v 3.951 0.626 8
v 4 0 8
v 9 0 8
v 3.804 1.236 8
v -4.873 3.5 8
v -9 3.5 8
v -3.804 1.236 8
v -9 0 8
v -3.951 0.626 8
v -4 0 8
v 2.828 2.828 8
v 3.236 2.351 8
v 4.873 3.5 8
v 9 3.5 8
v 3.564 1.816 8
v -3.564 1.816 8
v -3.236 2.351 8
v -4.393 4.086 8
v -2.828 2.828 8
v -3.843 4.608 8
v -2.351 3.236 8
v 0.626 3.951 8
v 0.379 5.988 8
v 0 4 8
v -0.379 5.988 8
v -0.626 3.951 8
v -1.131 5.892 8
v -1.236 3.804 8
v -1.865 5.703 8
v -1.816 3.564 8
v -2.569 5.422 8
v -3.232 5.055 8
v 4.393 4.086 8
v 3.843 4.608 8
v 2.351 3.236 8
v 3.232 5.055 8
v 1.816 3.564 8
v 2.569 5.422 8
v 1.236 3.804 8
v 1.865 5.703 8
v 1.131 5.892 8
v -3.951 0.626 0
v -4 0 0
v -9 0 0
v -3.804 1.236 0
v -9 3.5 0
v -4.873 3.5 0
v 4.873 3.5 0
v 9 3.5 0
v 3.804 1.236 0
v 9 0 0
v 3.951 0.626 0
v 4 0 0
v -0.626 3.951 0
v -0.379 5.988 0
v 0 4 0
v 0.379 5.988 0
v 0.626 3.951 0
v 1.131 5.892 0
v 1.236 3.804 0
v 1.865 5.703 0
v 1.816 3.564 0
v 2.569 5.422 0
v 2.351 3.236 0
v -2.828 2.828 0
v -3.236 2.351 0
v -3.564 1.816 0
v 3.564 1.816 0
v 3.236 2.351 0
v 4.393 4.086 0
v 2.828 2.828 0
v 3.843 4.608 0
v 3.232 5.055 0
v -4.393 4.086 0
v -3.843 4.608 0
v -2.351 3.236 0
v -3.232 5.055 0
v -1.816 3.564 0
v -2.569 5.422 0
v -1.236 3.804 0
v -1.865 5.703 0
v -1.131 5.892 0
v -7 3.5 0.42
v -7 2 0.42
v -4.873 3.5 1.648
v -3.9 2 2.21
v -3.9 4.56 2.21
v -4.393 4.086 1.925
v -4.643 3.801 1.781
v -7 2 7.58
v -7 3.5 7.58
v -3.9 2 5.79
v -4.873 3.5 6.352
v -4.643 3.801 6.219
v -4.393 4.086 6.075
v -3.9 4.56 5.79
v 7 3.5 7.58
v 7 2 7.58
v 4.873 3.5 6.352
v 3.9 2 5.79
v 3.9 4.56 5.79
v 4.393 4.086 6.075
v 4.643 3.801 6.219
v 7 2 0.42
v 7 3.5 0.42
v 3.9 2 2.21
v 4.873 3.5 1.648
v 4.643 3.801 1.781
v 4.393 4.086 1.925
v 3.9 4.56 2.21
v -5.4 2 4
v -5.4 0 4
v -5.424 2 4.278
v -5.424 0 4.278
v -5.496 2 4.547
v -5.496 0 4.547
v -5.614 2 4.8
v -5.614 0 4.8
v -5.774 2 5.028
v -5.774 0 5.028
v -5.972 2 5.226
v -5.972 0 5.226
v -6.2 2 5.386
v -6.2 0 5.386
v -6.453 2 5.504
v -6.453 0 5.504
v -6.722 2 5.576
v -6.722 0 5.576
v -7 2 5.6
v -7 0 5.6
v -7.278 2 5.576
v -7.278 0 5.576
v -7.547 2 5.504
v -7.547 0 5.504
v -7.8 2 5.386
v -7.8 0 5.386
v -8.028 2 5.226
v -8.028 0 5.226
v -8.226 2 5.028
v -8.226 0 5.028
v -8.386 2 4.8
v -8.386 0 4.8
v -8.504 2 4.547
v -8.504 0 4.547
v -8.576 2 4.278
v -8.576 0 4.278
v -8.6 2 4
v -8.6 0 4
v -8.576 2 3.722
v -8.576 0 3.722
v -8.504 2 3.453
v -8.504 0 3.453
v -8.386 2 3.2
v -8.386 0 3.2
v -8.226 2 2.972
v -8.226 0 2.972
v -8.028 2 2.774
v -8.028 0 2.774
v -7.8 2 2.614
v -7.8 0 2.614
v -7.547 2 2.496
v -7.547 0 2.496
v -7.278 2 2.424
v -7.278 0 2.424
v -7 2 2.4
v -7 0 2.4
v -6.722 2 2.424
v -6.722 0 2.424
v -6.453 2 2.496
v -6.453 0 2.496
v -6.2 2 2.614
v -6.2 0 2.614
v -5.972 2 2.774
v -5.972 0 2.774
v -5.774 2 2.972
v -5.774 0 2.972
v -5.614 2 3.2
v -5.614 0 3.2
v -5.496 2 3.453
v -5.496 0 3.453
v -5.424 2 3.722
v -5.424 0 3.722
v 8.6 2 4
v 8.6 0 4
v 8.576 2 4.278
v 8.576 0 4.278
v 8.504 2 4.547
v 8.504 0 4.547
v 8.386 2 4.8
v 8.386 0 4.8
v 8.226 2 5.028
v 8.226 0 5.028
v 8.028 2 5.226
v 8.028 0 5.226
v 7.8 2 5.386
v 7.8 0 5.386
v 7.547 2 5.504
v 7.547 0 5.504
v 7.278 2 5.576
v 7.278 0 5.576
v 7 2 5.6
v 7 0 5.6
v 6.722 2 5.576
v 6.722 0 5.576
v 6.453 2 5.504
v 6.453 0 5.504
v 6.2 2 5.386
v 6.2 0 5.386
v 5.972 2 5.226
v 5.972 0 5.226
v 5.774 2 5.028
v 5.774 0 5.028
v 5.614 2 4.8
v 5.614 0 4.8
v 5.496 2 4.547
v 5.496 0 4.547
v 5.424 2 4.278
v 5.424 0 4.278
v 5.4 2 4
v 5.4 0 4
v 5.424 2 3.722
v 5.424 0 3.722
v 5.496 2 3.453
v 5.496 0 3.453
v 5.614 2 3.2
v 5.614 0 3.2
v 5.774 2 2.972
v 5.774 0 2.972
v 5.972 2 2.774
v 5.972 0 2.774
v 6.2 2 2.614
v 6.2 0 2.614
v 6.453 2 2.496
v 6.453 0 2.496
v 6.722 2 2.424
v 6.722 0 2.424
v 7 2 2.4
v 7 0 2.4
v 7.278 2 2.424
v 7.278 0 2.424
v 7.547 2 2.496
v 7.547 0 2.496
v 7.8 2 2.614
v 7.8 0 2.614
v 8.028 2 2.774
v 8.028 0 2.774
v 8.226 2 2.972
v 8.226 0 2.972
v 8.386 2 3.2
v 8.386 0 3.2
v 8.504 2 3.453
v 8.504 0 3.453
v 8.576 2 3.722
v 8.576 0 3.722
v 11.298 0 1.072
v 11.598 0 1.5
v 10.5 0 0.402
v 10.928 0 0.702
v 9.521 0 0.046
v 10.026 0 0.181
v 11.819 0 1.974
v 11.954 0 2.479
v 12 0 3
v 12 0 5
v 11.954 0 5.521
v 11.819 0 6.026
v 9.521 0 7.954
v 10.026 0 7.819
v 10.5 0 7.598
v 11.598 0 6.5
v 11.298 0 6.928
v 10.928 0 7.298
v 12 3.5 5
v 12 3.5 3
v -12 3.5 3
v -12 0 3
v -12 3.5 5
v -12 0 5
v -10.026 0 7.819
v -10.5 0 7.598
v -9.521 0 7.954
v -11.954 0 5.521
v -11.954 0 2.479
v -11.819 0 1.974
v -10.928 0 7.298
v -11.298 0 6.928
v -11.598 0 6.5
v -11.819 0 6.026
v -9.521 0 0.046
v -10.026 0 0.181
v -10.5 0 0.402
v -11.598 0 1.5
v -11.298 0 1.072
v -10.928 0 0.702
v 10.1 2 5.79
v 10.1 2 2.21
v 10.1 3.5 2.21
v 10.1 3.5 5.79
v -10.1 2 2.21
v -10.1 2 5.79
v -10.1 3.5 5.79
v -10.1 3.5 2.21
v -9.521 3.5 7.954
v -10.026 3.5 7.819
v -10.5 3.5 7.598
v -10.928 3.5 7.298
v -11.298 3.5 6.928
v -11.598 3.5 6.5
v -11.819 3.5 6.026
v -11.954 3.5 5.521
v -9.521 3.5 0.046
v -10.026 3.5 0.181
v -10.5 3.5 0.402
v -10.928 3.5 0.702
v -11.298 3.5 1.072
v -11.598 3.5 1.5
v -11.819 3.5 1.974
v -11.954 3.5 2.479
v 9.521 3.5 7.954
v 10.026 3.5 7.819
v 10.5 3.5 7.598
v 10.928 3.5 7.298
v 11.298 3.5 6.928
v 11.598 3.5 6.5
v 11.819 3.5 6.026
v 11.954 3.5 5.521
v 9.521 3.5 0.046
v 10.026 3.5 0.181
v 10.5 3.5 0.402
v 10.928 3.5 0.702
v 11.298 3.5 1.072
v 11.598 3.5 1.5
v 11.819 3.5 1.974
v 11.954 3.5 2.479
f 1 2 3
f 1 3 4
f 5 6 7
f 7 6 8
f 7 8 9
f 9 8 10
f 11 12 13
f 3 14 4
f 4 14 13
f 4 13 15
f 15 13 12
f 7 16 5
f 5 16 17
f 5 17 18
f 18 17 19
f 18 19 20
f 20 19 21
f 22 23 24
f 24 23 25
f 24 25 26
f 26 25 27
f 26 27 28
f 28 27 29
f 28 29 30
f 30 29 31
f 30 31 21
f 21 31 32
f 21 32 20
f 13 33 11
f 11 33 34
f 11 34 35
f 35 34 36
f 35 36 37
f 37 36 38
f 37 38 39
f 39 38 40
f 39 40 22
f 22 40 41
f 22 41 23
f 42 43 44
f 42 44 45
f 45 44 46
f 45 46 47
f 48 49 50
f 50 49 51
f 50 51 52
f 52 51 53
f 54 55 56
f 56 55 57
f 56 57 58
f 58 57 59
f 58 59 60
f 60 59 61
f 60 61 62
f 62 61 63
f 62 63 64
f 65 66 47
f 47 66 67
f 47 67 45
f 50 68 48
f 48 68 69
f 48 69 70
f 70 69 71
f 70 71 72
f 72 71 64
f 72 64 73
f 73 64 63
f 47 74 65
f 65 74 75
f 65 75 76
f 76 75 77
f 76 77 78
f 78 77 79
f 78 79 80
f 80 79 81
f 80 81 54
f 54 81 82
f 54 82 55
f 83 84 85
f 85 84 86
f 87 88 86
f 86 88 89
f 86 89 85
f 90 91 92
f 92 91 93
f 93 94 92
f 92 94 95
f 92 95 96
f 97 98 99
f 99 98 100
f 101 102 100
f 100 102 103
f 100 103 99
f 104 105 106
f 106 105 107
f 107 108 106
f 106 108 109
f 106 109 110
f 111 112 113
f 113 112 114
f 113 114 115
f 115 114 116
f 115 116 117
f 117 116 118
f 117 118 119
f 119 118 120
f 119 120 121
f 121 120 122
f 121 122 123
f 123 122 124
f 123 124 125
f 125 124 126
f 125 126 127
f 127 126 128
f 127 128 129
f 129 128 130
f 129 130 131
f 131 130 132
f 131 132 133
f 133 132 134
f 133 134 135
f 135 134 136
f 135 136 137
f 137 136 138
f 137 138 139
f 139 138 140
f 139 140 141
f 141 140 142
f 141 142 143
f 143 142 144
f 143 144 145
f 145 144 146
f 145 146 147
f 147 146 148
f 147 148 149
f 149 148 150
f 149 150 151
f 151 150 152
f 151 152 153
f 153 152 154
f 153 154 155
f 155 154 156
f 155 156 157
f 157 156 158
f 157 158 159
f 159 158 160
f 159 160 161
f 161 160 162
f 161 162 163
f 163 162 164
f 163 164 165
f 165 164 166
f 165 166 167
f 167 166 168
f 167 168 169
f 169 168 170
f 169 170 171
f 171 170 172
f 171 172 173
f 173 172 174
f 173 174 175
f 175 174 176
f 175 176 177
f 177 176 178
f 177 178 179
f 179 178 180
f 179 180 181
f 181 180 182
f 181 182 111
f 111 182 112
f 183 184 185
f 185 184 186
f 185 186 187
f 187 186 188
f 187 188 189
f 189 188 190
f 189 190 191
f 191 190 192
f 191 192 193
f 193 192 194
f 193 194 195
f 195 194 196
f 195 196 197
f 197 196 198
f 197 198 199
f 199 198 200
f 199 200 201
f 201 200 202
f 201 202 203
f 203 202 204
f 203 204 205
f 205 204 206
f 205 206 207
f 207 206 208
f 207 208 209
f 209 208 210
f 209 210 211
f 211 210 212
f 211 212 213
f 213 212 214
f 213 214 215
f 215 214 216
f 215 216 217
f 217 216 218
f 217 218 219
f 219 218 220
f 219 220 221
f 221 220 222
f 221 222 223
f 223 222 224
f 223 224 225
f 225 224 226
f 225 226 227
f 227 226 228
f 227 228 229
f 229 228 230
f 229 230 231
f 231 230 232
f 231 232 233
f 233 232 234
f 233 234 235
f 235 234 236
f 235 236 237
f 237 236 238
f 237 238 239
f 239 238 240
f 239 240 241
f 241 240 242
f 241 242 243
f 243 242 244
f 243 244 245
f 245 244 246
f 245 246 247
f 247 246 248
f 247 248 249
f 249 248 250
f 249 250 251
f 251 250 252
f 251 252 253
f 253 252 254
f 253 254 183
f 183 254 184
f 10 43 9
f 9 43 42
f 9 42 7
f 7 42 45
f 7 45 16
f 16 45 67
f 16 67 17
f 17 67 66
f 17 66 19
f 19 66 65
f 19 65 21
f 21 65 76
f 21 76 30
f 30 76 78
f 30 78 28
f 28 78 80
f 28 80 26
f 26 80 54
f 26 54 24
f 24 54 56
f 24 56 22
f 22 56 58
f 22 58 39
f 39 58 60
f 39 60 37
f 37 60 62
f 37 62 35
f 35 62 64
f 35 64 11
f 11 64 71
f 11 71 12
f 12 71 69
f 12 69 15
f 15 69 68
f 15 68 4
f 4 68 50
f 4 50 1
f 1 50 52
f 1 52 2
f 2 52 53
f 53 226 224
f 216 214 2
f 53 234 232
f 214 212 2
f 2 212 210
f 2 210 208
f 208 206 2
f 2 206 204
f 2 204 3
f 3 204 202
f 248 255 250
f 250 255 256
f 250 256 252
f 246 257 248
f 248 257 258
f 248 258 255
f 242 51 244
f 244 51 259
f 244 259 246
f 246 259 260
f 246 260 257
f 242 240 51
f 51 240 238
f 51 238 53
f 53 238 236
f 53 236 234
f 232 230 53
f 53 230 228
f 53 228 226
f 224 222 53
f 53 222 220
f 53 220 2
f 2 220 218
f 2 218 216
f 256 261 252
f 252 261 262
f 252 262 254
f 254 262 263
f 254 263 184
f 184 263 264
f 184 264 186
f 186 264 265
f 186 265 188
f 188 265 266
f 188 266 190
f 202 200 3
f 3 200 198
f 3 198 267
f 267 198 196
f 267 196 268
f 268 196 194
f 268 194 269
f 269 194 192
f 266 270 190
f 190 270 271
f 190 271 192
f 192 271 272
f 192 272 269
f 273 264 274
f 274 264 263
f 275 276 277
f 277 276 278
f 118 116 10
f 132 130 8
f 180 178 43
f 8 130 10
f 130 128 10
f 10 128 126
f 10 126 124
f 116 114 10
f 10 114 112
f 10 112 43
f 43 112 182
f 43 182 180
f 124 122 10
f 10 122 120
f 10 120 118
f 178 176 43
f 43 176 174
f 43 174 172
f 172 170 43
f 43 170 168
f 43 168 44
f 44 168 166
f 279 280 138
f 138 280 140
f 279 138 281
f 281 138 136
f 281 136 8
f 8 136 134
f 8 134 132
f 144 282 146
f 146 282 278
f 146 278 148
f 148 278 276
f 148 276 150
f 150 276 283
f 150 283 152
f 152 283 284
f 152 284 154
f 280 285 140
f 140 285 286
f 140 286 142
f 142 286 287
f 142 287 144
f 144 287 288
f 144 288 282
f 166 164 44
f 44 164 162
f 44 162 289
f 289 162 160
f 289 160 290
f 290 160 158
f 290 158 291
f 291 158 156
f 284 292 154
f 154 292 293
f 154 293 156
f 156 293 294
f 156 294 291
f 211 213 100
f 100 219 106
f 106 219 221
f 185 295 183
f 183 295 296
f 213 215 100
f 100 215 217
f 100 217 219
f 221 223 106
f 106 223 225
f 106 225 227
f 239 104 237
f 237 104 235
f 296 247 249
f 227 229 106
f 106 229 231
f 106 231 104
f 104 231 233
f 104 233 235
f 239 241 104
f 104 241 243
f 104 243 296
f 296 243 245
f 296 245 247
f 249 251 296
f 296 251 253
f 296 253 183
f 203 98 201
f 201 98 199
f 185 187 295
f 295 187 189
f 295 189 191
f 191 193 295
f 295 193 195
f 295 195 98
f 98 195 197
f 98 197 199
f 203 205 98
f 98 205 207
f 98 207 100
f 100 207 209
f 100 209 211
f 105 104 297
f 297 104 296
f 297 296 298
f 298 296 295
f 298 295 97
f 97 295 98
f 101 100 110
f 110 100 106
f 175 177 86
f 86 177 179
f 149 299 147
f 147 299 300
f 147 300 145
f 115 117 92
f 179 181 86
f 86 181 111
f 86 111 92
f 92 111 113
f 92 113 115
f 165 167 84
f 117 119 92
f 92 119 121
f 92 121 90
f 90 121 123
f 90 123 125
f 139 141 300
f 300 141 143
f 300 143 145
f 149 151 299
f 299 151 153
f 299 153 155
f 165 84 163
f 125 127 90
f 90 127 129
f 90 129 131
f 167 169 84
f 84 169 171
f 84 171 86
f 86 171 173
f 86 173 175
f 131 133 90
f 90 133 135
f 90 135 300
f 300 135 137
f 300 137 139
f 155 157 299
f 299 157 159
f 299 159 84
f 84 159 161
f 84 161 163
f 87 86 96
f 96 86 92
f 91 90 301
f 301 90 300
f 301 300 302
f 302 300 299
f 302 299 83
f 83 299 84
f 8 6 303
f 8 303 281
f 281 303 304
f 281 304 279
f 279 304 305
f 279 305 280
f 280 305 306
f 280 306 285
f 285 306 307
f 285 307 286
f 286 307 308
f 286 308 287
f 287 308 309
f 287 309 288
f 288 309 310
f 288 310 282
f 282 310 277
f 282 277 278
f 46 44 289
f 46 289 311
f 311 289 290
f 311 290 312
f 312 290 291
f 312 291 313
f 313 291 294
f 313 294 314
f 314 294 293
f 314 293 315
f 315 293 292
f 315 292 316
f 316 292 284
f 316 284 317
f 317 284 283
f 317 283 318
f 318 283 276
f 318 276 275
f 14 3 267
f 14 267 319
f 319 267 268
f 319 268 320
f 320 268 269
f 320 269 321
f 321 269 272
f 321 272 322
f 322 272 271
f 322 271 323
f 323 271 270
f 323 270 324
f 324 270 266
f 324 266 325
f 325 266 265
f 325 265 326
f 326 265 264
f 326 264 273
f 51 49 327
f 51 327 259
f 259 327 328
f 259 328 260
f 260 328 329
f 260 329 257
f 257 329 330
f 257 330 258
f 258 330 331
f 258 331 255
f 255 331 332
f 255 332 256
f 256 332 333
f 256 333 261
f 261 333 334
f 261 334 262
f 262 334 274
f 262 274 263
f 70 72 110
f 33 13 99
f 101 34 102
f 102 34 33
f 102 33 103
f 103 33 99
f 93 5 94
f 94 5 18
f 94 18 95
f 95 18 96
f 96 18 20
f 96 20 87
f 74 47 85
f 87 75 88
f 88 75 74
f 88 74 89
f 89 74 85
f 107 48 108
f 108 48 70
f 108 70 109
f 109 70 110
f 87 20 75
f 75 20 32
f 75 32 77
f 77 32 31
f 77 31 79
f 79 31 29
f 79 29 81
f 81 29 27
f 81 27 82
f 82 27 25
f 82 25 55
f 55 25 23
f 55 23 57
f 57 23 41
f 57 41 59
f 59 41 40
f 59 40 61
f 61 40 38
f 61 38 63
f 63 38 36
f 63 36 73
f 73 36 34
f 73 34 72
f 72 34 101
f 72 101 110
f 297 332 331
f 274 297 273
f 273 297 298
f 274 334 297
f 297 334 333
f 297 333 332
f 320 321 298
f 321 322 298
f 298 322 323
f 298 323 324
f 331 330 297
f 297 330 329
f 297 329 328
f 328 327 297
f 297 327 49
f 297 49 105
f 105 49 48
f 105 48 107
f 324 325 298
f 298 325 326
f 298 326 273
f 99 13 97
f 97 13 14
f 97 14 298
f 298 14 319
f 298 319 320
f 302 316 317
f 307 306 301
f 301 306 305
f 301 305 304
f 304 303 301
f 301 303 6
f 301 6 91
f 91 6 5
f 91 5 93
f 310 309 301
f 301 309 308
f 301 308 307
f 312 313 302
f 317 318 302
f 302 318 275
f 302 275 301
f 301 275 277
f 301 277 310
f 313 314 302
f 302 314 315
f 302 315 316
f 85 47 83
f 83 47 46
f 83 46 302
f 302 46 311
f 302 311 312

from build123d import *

# Parameters (mm, degrees)
BOSS_EXTRUDE1_DEPTH = 8
CUT_EXTRUDE1_REACH  = 17.62
SKETCH3_R           = 1.6
CUT_EXTRUDE2_DEPTH  = 4
FILLET1_R           = 3
SKETCH5_W           = 3
SKETCH5_H           = 2.5
CUT_EXTRUDE3_DEPTH  = 16.620499352


with BuildPart() as part:
    # Sketch1 → Boss-Extrude1 (new body)
    with BuildSketch(Plane.XY):
        with BuildLine():
            Line((-4, 0), (-12, 0))
            Line((-12, 0), (-12, 6))
            Line((-12, 6), (12, 6))
            Line((12, 6), (12, 0))
            Line((12, 0), (4, 0))
            ThreePointArc((4, 0), (0, 4), (-4, 0))
        make_face()
    extrude(amount=BOSS_EXTRUDE1_DEPTH)

    # Sketch3 → Cut-Extrude1 (cut, up to next)
    with BuildSketch(Plane.XZ, mode=Mode.PRIVATE) as cut_extrude1_sk1:
        with Locations((7, 4)):
            Circle(SKETCH3_R)
    cut_extrude1_tool1 = extrude(cut_extrude1_sk1.sketch, amount=-CUT_EXTRUDE1_REACH, mode=Mode.PRIVATE) & part.part
    # Sketch3 → Cut-Extrude1 (cut, up to next)
    with BuildSketch(Plane.XZ, mode=Mode.PRIVATE) as cut_extrude1_sk2:
        with Locations((-7, 4)):
            Circle(SKETCH3_R)
    cut_extrude1_tool2 = extrude(cut_extrude1_sk2.sketch, amount=-CUT_EXTRUDE1_REACH, mode=Mode.PRIVATE) & part.part
    add(cut_extrude1_tool1.solids().sort_by_distance((7, 0, 4))[0], mode=Mode.SUBTRACT)
    add(cut_extrude1_tool2.solids().sort_by_distance((-7, 0, 4))[0], mode=Mode.SUBTRACT)

    # Sketch4 → Cut-Extrude2 (cut)
    with BuildSketch(Plane(origin=(0, 6, 0), x_dir=(1, 0, 0), z_dir=(0, 1, 0))):
        Polygon((7, -0.420428331), (3.9, -2.210214166), (3.9, -5.789785834), (7, -7.579571669), (10.1, -5.789785834), (10.1, -2.210214166), align=None)
        Polygon((-7, -0.420428331), (-10.1, -2.210214166), (-10.1, -5.789785834), (-7, -7.579571669), (-3.9, -5.789785834), (-3.9, -2.210214166), align=None)
    extrude(amount=-CUT_EXTRUDE2_DEPTH, mode=Mode.SUBTRACT)

    # Fillet1
    fillet1_edges = [part.edges().sort_by_distance(p)[0] for p in [
        (12, 3, 8),
        (-12, 3, 8),
        (-12, 3, 0),
        (12, 3, 0),
    ]]
    fillet(fillet1_edges, radius=FILLET1_R)

    # Sketch5 → Cut-Extrude3 (cut, through all)
    with BuildSketch(Plane(origin=(0, 0, 0), x_dir=(-1, 0, 0), z_dir=(0, 0, -1))):
        with BuildLine():
            Line((-9, 6), (-9, 3.5))
            Line((-9, 3.5), (-4.873397172, 3.5))
            ThreePointArc((-4.873397172, 3.5), (-2.738612785, 5.338539127), (6e-09, 6))
            Line((6e-09, 6), (-9, 6))
        make_face()
        with Locations((-10.5, 4.75)):
            Rectangle(SKETCH5_W, SKETCH5_H)
        with BuildLine():
            Line((9, 6), (6e-09, 6))
            ThreePointArc((6e-09, 6), (2.73861279, 5.338539125), (4.873397172, 3.5))
            Line((4.873397172, 3.5), (9, 3.5))
            Line((9, 3.5), (9, 6))
        make_face()
        with Locations((10.5, 4.75)):
            Rectangle(SKETCH5_W, SKETCH5_H)
    extrude(amount=-CUT_EXTRUDE3_DEPTH, mode=Mode.SUBTRACT)


solid = part.part
